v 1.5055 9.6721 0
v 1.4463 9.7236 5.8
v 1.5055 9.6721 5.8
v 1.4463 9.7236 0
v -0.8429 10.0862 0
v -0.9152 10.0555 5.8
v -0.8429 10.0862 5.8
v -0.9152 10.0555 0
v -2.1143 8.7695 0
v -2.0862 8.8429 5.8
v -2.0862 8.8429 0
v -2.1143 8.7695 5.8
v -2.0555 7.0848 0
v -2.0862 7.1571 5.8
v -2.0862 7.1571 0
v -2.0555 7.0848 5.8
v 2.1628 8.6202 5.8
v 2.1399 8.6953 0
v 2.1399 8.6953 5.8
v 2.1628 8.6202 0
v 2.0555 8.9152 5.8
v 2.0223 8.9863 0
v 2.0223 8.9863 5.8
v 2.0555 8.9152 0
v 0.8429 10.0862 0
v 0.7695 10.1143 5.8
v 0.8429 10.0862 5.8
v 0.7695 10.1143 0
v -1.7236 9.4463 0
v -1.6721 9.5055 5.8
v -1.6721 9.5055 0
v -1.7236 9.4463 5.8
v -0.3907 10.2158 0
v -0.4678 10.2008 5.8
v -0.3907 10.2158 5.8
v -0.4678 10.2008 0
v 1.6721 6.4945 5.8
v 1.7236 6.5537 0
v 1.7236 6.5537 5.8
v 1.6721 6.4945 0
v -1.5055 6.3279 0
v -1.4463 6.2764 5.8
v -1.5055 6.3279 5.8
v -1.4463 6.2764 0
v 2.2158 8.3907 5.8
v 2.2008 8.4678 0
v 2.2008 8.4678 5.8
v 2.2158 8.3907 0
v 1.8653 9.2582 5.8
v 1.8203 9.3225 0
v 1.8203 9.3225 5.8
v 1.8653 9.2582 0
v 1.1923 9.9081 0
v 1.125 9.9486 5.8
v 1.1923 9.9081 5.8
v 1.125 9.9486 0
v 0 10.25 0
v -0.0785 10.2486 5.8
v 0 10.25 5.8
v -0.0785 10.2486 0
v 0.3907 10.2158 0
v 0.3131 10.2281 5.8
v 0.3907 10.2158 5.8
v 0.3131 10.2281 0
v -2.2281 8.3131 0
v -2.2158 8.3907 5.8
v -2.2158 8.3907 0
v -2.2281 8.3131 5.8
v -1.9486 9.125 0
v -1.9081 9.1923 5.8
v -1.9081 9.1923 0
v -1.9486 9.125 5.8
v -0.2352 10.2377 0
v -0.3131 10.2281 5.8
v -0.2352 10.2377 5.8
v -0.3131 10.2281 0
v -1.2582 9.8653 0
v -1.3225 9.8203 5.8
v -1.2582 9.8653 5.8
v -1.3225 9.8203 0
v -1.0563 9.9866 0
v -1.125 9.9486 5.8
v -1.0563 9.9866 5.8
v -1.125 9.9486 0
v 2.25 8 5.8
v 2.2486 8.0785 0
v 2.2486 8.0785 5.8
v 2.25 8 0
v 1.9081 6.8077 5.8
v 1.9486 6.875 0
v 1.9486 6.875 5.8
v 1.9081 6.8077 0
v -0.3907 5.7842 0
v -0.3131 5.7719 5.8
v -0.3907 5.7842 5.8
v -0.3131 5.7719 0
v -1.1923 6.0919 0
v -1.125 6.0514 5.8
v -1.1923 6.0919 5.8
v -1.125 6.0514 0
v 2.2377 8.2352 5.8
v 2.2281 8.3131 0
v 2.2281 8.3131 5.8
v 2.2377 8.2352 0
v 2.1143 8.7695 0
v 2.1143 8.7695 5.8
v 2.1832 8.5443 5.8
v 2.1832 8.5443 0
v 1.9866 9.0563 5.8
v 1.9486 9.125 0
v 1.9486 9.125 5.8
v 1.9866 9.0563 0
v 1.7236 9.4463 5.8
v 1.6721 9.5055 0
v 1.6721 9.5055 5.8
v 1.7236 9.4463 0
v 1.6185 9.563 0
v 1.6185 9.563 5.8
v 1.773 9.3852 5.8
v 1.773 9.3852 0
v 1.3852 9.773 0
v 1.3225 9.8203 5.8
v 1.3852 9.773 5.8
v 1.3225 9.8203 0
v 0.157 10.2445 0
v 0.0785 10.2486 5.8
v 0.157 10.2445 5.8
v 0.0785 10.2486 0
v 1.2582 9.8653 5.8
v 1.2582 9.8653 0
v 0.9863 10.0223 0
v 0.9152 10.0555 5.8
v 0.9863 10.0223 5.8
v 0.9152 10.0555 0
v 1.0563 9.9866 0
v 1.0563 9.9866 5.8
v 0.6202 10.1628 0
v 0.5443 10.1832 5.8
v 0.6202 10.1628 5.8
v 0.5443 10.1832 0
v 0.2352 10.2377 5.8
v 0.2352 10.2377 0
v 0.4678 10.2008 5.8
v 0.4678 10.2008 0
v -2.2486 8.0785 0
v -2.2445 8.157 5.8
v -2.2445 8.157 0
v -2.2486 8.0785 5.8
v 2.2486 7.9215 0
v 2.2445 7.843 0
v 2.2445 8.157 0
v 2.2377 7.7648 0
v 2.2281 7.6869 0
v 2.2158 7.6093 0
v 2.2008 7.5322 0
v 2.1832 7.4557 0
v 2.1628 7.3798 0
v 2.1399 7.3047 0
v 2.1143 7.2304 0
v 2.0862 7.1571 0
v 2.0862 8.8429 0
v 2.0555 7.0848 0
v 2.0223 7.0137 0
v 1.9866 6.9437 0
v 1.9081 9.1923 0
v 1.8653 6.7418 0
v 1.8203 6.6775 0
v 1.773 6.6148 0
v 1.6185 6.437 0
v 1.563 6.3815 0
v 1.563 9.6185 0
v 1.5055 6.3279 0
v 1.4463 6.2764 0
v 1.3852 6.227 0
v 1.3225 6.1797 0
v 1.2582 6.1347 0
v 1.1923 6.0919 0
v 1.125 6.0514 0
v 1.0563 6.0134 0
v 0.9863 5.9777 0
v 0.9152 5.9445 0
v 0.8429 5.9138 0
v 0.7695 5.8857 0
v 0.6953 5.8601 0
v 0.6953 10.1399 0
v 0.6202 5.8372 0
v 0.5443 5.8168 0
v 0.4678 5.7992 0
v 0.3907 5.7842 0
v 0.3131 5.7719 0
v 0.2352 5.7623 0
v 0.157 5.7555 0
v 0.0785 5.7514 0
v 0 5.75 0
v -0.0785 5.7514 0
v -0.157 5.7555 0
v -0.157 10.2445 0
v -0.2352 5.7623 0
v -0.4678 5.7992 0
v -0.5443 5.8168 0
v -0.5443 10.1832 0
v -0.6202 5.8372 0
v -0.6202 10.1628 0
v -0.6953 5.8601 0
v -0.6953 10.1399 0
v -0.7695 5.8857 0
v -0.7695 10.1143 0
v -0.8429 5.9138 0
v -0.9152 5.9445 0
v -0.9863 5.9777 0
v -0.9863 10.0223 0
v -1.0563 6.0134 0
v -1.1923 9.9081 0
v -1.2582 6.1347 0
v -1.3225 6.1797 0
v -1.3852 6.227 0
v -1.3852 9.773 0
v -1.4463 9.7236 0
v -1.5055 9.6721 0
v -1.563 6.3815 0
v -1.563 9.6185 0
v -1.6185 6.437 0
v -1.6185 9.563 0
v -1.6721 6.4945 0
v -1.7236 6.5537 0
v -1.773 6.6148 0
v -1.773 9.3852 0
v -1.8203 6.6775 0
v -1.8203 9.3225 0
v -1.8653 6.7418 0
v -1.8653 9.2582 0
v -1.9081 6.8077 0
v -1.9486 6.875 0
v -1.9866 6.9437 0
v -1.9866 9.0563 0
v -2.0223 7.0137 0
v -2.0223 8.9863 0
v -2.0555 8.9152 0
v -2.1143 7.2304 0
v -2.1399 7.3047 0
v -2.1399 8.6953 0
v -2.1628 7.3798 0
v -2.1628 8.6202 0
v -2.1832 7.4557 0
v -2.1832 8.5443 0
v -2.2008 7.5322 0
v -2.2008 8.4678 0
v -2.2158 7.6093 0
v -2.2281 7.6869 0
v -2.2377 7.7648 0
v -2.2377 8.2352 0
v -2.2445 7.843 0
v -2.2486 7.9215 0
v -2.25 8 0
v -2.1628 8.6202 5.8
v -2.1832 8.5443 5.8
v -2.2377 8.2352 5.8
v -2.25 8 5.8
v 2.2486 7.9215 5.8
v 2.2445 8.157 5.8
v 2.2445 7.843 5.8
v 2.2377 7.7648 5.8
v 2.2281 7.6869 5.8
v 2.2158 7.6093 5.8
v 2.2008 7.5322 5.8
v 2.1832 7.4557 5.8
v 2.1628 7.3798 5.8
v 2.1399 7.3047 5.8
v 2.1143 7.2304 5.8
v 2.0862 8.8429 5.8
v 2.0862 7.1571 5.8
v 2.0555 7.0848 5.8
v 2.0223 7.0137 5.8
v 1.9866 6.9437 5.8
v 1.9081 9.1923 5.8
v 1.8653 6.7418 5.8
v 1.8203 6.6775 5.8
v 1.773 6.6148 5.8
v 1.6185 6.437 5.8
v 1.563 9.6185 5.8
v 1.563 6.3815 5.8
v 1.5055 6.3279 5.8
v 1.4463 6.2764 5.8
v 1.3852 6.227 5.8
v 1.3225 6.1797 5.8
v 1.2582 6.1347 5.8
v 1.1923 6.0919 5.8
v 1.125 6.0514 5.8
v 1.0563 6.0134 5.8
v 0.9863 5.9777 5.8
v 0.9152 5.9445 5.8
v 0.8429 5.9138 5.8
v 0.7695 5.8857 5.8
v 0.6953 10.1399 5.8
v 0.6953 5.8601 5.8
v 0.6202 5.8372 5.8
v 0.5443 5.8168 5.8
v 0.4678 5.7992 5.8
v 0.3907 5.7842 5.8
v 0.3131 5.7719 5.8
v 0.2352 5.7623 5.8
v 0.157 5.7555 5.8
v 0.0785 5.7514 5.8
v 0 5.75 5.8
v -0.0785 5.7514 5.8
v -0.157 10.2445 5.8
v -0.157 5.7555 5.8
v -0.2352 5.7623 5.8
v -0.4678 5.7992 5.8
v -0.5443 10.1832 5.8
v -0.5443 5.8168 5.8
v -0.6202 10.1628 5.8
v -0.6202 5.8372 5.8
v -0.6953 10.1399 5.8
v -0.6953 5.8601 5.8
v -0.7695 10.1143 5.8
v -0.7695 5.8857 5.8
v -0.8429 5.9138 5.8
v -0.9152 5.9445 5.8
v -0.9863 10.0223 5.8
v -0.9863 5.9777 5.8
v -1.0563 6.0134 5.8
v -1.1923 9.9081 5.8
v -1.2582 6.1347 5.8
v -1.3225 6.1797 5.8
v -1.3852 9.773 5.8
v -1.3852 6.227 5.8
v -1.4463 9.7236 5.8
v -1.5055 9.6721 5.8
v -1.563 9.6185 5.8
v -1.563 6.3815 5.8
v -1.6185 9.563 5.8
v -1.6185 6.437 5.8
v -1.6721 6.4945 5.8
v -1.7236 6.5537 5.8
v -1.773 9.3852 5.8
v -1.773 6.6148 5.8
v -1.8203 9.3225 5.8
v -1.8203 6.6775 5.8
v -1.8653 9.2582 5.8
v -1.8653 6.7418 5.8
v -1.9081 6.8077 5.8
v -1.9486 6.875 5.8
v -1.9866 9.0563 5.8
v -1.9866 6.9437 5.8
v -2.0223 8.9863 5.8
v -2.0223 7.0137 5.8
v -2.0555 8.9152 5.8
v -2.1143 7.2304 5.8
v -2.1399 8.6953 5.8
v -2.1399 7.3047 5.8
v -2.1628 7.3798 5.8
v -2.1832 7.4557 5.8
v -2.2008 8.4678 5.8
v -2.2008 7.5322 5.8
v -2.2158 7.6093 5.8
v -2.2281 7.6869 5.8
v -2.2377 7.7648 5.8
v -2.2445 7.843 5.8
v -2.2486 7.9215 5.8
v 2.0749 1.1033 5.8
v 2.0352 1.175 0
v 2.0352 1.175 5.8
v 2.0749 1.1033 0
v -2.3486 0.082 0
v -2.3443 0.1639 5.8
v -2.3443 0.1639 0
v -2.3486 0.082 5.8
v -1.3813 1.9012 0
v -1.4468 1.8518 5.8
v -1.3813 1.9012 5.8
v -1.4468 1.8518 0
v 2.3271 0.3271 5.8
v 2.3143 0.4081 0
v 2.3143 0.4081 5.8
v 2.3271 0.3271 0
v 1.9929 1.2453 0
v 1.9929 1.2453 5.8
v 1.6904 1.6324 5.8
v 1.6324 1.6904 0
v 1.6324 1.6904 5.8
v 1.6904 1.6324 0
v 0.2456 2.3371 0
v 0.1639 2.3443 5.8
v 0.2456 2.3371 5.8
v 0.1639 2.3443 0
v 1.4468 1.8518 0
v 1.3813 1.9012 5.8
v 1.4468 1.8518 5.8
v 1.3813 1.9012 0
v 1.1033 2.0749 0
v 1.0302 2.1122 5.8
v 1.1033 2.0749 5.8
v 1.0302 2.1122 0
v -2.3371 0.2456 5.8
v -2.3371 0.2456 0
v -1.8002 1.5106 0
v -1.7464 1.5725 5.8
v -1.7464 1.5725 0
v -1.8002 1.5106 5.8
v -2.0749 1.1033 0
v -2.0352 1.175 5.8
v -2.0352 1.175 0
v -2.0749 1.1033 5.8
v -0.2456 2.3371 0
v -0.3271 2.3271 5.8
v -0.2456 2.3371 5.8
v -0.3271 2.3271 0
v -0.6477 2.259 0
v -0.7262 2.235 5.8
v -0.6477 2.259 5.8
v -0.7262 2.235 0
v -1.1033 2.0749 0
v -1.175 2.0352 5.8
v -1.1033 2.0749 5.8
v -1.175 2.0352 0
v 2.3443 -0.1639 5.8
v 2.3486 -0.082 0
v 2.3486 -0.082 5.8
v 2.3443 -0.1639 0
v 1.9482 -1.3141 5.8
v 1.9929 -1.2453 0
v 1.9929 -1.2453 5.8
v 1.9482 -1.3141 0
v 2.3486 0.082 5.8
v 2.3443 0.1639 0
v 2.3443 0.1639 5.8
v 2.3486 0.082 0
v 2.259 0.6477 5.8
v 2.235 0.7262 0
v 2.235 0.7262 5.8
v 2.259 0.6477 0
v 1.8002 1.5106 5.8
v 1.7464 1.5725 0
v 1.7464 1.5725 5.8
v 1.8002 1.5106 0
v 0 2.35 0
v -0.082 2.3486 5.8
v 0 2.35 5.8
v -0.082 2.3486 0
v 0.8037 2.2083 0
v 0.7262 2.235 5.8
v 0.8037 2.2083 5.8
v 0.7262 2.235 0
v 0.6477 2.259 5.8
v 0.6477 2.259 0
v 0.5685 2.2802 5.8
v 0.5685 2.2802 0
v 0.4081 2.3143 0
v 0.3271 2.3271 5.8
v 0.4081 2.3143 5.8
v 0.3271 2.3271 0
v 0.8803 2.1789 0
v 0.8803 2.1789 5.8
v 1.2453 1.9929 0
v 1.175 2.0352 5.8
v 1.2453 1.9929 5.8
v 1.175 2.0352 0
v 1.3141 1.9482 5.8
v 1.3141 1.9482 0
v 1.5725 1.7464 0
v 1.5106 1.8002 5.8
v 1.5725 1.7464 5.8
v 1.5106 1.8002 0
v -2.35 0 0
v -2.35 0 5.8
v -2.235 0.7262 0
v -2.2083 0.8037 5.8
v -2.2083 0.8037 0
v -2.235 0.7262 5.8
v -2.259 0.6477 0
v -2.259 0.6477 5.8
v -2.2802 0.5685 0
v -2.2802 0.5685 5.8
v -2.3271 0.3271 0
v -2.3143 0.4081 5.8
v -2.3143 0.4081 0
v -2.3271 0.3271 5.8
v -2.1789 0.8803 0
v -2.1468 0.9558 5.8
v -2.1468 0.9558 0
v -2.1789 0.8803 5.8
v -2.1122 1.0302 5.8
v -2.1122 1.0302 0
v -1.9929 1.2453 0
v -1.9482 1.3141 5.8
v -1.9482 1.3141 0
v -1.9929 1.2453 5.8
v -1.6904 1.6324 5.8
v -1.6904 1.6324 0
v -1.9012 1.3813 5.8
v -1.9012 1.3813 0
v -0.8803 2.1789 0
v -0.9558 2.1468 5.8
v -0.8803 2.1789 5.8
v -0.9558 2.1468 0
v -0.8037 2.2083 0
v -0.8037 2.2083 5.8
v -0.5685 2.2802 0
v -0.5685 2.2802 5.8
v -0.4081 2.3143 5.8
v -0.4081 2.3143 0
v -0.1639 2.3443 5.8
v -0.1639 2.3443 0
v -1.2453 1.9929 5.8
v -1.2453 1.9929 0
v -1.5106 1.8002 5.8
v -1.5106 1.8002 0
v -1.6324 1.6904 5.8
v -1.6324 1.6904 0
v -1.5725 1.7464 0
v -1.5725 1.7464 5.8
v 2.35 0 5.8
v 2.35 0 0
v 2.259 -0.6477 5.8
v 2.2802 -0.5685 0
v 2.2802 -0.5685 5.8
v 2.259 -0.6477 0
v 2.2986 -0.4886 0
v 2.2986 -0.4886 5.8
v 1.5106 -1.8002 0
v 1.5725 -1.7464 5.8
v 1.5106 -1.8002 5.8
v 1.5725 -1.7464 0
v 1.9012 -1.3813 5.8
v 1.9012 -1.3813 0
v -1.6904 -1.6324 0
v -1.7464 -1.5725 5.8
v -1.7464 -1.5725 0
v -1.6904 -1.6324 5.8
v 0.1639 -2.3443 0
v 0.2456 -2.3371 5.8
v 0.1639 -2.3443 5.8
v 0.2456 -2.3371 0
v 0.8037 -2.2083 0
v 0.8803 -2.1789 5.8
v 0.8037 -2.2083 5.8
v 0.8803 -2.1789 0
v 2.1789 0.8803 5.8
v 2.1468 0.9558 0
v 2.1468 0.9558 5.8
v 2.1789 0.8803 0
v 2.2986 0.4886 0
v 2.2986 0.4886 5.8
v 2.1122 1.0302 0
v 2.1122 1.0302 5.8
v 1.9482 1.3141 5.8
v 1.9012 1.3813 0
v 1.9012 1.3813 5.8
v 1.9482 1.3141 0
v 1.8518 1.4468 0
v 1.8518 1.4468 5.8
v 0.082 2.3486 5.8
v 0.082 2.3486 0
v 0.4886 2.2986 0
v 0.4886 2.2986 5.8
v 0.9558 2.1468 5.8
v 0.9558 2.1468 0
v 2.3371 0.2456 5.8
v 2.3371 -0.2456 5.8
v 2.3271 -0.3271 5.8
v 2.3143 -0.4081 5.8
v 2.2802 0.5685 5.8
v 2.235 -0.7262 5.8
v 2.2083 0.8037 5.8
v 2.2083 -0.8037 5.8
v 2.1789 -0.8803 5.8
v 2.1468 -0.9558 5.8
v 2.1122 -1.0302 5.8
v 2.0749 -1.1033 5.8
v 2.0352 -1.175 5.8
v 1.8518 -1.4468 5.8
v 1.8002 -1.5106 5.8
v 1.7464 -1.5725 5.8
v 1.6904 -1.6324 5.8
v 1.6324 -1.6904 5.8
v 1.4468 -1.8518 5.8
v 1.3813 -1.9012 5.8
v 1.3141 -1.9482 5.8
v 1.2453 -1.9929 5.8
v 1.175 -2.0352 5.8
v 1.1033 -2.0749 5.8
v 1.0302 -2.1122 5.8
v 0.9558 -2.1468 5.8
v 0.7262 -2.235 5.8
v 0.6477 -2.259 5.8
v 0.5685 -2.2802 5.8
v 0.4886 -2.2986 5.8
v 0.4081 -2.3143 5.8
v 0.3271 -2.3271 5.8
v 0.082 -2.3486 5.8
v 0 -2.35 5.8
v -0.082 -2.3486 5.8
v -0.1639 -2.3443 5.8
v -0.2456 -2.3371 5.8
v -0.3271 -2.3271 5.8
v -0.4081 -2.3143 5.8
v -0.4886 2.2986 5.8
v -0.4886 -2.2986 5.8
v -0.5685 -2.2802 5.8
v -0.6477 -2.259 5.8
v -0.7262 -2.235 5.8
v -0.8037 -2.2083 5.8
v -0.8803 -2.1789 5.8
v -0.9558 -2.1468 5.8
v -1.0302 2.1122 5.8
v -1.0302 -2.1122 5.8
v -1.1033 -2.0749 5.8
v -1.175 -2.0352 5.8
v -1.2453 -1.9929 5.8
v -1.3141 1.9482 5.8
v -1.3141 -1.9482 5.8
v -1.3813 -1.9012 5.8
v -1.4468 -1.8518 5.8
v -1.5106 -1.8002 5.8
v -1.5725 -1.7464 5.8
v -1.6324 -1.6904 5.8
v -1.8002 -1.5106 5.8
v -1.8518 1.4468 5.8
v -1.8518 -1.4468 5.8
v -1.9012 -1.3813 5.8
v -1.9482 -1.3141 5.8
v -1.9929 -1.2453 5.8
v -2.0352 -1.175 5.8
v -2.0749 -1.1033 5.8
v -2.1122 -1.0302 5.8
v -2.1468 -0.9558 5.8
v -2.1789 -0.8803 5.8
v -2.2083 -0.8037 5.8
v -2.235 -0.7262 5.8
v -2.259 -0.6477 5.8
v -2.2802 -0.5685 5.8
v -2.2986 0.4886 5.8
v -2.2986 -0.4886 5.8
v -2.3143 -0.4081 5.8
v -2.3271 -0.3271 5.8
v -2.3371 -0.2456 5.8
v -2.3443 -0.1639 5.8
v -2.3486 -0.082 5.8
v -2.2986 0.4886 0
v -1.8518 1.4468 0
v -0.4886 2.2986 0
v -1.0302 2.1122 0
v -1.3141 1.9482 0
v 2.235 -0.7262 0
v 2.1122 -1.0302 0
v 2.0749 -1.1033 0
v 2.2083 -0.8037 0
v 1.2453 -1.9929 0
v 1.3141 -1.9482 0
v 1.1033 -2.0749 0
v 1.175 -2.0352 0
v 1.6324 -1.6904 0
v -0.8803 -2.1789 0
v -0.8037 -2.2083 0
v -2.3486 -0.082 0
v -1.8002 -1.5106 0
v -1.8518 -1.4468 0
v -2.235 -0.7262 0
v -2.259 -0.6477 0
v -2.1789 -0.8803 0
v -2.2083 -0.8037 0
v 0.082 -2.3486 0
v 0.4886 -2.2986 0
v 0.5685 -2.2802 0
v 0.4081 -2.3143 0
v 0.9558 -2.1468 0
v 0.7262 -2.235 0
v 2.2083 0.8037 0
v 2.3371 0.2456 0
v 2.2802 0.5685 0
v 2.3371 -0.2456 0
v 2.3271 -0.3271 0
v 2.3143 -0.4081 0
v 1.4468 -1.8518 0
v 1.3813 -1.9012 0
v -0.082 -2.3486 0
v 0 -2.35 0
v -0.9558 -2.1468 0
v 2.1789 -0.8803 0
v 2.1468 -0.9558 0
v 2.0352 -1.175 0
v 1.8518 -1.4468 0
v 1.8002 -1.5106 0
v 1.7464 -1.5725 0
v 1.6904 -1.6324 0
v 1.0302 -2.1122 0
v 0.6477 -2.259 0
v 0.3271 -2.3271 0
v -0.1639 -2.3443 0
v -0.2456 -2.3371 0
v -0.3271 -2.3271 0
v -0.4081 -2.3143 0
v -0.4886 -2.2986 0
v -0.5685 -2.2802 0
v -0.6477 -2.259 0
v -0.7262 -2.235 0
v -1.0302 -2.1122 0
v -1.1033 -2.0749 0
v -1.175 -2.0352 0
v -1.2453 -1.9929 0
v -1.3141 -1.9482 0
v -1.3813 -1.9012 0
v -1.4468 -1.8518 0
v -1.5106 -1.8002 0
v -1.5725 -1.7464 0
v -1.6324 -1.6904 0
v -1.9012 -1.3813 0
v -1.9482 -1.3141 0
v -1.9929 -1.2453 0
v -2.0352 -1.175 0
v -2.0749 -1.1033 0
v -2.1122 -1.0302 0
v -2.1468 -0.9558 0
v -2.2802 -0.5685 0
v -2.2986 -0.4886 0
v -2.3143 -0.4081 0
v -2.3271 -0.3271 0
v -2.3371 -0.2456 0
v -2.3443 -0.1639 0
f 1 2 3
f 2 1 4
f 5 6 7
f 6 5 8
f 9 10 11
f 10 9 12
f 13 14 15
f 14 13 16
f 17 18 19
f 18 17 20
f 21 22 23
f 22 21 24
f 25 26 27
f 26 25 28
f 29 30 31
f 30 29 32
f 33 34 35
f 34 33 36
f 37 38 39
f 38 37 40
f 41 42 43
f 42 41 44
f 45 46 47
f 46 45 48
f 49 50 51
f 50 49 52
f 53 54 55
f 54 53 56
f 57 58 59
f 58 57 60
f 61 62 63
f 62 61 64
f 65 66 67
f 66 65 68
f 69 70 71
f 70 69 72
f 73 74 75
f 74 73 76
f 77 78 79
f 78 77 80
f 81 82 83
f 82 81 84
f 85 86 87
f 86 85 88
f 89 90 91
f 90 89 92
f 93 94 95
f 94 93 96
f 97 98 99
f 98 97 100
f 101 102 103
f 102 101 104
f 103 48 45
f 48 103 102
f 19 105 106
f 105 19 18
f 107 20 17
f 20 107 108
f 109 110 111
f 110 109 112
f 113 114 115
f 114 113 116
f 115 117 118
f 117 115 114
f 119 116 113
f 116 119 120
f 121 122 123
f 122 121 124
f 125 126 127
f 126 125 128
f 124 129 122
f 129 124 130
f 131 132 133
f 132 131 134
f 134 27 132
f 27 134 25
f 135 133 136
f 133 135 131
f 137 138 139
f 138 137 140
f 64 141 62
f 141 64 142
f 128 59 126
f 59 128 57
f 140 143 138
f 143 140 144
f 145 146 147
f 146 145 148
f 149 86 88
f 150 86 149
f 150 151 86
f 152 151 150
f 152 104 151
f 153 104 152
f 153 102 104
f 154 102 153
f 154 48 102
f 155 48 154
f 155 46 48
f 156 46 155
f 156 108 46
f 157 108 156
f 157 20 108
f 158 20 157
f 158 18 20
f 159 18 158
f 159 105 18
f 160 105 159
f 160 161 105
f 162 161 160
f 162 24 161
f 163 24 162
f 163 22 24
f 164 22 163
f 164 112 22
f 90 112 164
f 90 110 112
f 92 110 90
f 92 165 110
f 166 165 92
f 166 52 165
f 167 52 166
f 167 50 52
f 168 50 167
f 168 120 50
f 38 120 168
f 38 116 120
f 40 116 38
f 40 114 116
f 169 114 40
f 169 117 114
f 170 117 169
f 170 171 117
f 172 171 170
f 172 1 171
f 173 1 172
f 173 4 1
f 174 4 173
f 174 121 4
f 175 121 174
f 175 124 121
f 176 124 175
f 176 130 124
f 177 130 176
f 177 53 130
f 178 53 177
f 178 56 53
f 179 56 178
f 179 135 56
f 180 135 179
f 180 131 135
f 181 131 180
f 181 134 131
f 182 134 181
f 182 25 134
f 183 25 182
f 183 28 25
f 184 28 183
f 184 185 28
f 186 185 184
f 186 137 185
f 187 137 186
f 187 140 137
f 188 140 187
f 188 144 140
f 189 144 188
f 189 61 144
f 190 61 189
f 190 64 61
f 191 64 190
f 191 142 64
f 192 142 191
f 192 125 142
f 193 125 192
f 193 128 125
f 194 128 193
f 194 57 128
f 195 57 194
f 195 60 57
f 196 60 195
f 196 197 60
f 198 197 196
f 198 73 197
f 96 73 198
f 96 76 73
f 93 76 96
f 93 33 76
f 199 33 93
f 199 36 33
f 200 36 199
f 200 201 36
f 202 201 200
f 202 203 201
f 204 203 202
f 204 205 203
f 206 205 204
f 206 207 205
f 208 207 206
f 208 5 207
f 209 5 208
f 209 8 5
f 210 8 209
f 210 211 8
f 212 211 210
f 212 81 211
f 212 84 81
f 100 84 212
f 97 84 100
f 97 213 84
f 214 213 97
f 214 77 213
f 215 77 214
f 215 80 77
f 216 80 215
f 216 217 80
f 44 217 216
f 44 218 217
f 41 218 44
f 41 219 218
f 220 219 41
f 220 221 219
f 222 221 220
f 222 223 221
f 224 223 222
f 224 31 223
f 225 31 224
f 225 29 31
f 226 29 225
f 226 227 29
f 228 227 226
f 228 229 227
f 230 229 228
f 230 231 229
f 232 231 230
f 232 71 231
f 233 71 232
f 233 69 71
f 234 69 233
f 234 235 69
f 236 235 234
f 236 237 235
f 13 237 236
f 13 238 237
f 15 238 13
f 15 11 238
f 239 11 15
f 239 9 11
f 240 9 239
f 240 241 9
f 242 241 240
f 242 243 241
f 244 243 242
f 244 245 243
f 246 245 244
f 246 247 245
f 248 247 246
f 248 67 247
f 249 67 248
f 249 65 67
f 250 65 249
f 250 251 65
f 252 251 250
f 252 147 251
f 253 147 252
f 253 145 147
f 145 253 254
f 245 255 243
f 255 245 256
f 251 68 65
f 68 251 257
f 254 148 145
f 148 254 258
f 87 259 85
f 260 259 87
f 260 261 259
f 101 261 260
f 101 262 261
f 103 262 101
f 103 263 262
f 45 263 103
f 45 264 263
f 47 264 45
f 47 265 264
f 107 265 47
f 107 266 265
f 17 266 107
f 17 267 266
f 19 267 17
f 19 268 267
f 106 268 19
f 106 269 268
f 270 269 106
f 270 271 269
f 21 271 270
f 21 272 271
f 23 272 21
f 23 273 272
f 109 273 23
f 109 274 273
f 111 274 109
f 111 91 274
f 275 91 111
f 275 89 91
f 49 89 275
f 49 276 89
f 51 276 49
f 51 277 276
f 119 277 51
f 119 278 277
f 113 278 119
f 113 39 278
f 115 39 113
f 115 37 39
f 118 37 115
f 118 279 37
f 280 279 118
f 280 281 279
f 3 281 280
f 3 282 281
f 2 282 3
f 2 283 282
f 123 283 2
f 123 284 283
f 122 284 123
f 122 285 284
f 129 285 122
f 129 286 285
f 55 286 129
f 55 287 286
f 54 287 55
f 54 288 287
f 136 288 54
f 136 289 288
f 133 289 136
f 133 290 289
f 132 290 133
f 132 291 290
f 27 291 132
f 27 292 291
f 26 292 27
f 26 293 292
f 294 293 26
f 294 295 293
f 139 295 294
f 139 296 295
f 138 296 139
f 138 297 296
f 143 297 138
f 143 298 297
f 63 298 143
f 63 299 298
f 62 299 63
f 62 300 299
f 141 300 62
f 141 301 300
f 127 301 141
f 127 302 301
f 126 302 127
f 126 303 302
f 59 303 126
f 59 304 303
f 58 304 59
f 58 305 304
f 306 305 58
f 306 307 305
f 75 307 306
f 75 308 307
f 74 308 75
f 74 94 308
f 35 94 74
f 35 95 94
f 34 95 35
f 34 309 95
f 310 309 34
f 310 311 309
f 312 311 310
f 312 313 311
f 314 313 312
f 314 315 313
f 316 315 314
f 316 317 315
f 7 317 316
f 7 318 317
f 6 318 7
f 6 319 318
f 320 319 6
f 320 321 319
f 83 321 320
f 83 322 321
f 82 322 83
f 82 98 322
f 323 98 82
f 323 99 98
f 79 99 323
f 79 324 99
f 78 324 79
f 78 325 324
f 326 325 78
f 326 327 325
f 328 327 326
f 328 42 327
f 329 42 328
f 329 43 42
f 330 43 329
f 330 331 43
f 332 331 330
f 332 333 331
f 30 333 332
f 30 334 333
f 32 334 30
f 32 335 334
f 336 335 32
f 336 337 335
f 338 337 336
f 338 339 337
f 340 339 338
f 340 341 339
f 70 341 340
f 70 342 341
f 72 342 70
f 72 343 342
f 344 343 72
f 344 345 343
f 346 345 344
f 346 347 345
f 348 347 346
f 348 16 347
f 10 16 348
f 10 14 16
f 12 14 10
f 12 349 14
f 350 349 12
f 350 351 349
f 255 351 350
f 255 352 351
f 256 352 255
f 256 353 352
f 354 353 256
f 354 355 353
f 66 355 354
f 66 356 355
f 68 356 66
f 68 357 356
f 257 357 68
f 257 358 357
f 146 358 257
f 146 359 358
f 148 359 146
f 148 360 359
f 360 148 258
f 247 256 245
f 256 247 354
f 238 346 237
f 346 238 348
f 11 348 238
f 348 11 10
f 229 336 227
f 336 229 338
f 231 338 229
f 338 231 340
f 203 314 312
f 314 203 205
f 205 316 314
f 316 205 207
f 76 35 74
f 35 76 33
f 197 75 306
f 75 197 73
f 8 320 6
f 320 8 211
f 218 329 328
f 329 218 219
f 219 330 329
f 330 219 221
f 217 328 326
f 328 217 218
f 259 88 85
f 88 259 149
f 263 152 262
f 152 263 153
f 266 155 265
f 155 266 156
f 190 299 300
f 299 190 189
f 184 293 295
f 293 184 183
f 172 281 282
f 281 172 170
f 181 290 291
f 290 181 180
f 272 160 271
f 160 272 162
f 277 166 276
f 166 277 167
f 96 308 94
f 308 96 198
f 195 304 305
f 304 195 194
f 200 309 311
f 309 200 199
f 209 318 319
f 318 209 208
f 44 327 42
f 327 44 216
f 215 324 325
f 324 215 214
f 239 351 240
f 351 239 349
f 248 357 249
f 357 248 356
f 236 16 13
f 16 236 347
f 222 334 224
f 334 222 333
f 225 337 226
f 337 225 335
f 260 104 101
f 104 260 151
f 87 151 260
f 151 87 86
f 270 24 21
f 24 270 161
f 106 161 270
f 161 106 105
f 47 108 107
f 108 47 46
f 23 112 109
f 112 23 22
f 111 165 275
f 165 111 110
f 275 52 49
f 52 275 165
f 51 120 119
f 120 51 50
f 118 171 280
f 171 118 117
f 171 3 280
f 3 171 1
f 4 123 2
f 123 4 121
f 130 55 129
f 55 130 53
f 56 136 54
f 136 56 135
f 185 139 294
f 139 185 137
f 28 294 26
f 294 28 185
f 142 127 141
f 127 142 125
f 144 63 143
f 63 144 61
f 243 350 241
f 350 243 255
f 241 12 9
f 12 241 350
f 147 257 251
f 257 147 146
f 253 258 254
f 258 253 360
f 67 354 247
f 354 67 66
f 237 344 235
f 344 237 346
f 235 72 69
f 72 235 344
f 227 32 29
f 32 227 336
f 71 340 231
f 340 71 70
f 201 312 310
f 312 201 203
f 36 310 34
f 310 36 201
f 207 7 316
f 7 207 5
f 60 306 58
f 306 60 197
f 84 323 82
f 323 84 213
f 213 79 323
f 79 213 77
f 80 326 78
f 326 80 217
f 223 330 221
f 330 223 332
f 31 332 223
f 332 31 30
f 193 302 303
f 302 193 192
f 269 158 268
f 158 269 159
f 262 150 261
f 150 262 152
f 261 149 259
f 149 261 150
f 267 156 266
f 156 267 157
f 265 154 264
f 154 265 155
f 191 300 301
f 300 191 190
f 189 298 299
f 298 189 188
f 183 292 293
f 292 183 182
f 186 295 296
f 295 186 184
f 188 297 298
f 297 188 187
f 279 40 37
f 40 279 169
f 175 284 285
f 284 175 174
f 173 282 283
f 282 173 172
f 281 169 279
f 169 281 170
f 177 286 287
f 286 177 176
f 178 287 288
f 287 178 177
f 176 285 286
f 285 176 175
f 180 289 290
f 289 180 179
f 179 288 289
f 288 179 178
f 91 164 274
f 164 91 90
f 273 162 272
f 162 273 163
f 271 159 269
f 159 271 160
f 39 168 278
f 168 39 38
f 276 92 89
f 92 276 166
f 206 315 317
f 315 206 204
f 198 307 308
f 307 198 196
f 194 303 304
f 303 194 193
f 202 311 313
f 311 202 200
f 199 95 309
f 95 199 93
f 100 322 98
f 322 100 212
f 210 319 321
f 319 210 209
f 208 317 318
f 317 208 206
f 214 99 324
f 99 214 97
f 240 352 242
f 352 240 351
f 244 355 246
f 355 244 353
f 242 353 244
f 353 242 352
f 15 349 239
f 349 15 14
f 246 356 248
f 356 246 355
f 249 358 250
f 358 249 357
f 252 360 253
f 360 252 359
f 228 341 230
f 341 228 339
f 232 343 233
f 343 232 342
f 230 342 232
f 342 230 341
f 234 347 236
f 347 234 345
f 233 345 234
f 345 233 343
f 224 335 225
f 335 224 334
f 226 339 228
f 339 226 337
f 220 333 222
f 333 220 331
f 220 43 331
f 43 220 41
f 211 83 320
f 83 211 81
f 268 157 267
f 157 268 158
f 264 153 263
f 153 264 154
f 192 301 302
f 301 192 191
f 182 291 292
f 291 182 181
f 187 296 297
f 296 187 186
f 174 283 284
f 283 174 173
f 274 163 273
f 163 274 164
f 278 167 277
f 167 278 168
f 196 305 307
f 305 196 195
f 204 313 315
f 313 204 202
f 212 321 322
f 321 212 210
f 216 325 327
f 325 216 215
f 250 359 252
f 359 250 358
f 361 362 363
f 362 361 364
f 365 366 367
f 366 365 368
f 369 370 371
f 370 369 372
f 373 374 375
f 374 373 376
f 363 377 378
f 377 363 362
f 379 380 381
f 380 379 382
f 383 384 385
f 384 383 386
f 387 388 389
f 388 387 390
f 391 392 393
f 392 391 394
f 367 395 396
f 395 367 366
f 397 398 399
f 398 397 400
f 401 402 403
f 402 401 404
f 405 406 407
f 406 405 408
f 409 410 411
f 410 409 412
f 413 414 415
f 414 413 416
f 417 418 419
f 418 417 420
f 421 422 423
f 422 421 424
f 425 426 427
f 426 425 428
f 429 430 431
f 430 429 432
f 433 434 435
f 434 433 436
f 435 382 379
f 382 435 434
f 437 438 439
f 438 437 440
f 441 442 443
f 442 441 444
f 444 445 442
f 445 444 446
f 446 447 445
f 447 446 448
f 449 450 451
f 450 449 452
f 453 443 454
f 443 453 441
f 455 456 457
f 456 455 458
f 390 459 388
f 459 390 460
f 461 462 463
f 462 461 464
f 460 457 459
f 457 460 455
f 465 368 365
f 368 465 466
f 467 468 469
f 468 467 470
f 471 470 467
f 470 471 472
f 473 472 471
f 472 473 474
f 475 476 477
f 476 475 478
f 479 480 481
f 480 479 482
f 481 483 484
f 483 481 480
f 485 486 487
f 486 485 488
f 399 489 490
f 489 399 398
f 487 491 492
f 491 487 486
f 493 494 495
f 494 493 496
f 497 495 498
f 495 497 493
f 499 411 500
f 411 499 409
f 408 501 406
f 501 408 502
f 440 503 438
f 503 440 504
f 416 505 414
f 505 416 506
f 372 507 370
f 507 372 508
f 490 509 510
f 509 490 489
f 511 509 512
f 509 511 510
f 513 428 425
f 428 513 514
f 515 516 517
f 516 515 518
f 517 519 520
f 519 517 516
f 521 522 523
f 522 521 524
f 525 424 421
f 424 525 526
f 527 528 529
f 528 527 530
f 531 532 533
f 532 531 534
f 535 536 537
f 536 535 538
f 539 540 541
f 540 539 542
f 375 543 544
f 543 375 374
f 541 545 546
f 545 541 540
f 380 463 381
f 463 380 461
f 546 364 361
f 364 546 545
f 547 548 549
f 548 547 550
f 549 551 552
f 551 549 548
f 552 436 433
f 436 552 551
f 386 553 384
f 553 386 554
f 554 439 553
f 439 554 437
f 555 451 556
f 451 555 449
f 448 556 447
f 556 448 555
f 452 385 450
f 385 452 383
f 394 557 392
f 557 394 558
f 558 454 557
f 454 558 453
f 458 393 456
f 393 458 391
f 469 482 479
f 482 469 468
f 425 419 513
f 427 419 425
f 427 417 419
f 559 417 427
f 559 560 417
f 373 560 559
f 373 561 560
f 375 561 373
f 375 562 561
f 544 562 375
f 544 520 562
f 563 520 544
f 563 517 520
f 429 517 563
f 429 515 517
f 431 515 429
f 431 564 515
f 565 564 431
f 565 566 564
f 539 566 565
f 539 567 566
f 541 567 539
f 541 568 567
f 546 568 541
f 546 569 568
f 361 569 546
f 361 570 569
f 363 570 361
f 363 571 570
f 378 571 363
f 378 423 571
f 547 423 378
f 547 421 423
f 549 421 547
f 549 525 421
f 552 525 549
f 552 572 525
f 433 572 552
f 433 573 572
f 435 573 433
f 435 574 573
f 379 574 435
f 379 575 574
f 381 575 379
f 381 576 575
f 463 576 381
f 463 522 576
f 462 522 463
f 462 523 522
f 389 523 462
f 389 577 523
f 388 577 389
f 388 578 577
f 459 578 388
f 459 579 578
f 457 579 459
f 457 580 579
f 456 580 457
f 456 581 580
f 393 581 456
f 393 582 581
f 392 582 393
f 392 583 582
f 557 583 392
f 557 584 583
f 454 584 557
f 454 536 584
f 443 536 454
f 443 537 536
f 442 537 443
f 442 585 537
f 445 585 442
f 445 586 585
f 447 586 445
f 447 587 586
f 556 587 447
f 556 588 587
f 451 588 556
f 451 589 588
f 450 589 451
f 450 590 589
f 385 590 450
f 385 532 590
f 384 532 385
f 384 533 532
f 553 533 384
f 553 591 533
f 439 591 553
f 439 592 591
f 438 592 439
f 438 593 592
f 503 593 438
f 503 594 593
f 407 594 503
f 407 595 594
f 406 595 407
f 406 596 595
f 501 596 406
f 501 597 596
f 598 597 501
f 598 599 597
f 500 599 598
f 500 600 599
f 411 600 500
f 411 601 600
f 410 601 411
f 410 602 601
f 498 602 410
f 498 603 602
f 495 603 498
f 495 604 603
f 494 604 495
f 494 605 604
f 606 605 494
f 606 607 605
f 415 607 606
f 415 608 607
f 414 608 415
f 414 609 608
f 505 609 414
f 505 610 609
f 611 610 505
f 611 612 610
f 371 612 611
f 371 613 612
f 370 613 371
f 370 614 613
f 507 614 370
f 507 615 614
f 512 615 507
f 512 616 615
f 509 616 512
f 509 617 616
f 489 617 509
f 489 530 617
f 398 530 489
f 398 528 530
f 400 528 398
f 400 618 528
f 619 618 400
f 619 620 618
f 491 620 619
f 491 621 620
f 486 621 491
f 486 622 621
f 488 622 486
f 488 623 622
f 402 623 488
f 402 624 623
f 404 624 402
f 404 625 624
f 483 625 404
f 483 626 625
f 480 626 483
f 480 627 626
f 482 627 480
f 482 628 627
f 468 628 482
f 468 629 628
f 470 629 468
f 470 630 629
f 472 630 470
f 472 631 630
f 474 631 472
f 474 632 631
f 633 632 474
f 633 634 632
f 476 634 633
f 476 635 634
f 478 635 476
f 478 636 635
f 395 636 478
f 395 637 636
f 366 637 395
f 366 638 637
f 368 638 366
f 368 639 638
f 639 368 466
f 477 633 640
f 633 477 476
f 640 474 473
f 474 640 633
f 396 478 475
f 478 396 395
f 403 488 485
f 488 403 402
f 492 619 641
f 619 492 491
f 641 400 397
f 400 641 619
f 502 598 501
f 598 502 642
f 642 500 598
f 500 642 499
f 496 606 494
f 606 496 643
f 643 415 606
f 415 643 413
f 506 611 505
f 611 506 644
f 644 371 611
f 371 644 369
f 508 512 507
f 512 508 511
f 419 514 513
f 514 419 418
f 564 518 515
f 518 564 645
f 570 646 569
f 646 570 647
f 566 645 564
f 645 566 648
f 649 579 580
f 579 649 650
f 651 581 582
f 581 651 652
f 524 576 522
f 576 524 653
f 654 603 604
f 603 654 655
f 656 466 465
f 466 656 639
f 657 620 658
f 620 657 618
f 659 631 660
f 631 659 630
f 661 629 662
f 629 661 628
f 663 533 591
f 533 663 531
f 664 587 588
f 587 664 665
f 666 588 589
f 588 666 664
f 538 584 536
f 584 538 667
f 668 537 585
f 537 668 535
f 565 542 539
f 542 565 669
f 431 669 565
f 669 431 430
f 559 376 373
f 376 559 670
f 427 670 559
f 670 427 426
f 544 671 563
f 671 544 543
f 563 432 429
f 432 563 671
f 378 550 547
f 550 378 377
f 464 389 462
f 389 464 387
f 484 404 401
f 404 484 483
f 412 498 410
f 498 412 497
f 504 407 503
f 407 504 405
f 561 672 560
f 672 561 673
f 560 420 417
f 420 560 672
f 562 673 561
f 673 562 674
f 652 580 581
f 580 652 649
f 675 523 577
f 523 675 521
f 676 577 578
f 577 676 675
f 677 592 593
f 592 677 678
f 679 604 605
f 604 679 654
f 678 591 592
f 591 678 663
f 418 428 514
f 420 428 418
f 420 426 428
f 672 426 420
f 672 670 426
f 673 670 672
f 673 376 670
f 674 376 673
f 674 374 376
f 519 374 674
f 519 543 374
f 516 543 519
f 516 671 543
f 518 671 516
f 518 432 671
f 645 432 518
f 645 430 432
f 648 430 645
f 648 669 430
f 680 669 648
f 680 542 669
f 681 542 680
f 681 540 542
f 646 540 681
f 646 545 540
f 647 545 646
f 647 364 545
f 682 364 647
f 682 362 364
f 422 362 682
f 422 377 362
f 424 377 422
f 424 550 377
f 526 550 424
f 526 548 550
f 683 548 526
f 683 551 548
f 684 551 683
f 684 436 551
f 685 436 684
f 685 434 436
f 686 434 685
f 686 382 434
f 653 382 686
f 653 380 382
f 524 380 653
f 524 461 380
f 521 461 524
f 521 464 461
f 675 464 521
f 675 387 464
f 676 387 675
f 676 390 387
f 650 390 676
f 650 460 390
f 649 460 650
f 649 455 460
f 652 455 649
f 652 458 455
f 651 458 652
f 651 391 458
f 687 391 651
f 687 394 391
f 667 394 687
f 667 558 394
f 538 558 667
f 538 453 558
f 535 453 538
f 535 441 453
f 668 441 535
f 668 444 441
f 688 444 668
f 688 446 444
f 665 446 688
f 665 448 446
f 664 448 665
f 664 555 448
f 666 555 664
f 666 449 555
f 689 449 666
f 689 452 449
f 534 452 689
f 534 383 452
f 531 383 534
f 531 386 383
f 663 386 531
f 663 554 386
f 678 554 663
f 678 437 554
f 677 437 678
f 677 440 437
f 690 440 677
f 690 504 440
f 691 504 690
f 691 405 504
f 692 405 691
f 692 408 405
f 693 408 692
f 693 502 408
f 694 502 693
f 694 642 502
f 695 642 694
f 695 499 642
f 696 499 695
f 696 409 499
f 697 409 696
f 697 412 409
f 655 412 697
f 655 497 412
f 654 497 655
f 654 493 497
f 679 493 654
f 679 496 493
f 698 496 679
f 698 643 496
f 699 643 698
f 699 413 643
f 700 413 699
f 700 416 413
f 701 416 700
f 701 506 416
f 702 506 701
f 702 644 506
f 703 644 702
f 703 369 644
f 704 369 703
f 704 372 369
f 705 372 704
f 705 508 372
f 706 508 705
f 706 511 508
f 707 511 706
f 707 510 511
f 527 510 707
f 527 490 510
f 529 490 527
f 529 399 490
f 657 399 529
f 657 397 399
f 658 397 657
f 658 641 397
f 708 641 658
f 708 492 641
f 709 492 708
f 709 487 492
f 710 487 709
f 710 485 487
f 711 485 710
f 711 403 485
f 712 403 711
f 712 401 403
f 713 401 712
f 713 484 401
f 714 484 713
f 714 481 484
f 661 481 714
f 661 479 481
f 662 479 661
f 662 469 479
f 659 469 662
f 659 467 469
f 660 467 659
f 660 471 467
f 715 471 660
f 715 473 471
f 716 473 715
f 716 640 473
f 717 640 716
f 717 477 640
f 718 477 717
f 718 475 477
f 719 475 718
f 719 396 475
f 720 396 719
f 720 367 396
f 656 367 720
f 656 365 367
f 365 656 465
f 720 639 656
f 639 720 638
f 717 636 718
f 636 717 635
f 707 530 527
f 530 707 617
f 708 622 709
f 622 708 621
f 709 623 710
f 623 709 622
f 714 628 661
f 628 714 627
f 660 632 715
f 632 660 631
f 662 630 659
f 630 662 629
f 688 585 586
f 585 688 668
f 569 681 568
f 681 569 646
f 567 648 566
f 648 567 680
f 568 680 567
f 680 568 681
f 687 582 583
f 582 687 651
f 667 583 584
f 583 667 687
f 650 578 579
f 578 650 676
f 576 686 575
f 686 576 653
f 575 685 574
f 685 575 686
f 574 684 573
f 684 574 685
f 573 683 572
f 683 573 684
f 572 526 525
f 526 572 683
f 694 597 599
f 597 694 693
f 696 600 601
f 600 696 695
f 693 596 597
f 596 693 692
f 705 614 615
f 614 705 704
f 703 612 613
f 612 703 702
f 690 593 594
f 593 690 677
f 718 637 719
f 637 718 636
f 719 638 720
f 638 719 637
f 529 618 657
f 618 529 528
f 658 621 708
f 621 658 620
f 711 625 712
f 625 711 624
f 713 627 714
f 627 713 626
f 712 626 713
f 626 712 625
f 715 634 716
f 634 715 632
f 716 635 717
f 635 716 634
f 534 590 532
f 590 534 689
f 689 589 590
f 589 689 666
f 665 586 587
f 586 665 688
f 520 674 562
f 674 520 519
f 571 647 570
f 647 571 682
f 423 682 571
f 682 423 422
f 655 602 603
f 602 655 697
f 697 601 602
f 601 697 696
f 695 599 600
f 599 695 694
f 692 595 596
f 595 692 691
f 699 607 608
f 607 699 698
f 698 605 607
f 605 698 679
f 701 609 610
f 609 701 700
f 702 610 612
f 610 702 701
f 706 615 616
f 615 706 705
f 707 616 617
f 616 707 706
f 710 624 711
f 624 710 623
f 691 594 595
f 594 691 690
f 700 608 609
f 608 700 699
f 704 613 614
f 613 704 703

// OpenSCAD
translate([0,8,0]) cylinder(h=6-0.2, r=2.25, $fn=180);

translate([0,0,0]) cylinder(h=6-0.2, r=2.35, $fn=180);
